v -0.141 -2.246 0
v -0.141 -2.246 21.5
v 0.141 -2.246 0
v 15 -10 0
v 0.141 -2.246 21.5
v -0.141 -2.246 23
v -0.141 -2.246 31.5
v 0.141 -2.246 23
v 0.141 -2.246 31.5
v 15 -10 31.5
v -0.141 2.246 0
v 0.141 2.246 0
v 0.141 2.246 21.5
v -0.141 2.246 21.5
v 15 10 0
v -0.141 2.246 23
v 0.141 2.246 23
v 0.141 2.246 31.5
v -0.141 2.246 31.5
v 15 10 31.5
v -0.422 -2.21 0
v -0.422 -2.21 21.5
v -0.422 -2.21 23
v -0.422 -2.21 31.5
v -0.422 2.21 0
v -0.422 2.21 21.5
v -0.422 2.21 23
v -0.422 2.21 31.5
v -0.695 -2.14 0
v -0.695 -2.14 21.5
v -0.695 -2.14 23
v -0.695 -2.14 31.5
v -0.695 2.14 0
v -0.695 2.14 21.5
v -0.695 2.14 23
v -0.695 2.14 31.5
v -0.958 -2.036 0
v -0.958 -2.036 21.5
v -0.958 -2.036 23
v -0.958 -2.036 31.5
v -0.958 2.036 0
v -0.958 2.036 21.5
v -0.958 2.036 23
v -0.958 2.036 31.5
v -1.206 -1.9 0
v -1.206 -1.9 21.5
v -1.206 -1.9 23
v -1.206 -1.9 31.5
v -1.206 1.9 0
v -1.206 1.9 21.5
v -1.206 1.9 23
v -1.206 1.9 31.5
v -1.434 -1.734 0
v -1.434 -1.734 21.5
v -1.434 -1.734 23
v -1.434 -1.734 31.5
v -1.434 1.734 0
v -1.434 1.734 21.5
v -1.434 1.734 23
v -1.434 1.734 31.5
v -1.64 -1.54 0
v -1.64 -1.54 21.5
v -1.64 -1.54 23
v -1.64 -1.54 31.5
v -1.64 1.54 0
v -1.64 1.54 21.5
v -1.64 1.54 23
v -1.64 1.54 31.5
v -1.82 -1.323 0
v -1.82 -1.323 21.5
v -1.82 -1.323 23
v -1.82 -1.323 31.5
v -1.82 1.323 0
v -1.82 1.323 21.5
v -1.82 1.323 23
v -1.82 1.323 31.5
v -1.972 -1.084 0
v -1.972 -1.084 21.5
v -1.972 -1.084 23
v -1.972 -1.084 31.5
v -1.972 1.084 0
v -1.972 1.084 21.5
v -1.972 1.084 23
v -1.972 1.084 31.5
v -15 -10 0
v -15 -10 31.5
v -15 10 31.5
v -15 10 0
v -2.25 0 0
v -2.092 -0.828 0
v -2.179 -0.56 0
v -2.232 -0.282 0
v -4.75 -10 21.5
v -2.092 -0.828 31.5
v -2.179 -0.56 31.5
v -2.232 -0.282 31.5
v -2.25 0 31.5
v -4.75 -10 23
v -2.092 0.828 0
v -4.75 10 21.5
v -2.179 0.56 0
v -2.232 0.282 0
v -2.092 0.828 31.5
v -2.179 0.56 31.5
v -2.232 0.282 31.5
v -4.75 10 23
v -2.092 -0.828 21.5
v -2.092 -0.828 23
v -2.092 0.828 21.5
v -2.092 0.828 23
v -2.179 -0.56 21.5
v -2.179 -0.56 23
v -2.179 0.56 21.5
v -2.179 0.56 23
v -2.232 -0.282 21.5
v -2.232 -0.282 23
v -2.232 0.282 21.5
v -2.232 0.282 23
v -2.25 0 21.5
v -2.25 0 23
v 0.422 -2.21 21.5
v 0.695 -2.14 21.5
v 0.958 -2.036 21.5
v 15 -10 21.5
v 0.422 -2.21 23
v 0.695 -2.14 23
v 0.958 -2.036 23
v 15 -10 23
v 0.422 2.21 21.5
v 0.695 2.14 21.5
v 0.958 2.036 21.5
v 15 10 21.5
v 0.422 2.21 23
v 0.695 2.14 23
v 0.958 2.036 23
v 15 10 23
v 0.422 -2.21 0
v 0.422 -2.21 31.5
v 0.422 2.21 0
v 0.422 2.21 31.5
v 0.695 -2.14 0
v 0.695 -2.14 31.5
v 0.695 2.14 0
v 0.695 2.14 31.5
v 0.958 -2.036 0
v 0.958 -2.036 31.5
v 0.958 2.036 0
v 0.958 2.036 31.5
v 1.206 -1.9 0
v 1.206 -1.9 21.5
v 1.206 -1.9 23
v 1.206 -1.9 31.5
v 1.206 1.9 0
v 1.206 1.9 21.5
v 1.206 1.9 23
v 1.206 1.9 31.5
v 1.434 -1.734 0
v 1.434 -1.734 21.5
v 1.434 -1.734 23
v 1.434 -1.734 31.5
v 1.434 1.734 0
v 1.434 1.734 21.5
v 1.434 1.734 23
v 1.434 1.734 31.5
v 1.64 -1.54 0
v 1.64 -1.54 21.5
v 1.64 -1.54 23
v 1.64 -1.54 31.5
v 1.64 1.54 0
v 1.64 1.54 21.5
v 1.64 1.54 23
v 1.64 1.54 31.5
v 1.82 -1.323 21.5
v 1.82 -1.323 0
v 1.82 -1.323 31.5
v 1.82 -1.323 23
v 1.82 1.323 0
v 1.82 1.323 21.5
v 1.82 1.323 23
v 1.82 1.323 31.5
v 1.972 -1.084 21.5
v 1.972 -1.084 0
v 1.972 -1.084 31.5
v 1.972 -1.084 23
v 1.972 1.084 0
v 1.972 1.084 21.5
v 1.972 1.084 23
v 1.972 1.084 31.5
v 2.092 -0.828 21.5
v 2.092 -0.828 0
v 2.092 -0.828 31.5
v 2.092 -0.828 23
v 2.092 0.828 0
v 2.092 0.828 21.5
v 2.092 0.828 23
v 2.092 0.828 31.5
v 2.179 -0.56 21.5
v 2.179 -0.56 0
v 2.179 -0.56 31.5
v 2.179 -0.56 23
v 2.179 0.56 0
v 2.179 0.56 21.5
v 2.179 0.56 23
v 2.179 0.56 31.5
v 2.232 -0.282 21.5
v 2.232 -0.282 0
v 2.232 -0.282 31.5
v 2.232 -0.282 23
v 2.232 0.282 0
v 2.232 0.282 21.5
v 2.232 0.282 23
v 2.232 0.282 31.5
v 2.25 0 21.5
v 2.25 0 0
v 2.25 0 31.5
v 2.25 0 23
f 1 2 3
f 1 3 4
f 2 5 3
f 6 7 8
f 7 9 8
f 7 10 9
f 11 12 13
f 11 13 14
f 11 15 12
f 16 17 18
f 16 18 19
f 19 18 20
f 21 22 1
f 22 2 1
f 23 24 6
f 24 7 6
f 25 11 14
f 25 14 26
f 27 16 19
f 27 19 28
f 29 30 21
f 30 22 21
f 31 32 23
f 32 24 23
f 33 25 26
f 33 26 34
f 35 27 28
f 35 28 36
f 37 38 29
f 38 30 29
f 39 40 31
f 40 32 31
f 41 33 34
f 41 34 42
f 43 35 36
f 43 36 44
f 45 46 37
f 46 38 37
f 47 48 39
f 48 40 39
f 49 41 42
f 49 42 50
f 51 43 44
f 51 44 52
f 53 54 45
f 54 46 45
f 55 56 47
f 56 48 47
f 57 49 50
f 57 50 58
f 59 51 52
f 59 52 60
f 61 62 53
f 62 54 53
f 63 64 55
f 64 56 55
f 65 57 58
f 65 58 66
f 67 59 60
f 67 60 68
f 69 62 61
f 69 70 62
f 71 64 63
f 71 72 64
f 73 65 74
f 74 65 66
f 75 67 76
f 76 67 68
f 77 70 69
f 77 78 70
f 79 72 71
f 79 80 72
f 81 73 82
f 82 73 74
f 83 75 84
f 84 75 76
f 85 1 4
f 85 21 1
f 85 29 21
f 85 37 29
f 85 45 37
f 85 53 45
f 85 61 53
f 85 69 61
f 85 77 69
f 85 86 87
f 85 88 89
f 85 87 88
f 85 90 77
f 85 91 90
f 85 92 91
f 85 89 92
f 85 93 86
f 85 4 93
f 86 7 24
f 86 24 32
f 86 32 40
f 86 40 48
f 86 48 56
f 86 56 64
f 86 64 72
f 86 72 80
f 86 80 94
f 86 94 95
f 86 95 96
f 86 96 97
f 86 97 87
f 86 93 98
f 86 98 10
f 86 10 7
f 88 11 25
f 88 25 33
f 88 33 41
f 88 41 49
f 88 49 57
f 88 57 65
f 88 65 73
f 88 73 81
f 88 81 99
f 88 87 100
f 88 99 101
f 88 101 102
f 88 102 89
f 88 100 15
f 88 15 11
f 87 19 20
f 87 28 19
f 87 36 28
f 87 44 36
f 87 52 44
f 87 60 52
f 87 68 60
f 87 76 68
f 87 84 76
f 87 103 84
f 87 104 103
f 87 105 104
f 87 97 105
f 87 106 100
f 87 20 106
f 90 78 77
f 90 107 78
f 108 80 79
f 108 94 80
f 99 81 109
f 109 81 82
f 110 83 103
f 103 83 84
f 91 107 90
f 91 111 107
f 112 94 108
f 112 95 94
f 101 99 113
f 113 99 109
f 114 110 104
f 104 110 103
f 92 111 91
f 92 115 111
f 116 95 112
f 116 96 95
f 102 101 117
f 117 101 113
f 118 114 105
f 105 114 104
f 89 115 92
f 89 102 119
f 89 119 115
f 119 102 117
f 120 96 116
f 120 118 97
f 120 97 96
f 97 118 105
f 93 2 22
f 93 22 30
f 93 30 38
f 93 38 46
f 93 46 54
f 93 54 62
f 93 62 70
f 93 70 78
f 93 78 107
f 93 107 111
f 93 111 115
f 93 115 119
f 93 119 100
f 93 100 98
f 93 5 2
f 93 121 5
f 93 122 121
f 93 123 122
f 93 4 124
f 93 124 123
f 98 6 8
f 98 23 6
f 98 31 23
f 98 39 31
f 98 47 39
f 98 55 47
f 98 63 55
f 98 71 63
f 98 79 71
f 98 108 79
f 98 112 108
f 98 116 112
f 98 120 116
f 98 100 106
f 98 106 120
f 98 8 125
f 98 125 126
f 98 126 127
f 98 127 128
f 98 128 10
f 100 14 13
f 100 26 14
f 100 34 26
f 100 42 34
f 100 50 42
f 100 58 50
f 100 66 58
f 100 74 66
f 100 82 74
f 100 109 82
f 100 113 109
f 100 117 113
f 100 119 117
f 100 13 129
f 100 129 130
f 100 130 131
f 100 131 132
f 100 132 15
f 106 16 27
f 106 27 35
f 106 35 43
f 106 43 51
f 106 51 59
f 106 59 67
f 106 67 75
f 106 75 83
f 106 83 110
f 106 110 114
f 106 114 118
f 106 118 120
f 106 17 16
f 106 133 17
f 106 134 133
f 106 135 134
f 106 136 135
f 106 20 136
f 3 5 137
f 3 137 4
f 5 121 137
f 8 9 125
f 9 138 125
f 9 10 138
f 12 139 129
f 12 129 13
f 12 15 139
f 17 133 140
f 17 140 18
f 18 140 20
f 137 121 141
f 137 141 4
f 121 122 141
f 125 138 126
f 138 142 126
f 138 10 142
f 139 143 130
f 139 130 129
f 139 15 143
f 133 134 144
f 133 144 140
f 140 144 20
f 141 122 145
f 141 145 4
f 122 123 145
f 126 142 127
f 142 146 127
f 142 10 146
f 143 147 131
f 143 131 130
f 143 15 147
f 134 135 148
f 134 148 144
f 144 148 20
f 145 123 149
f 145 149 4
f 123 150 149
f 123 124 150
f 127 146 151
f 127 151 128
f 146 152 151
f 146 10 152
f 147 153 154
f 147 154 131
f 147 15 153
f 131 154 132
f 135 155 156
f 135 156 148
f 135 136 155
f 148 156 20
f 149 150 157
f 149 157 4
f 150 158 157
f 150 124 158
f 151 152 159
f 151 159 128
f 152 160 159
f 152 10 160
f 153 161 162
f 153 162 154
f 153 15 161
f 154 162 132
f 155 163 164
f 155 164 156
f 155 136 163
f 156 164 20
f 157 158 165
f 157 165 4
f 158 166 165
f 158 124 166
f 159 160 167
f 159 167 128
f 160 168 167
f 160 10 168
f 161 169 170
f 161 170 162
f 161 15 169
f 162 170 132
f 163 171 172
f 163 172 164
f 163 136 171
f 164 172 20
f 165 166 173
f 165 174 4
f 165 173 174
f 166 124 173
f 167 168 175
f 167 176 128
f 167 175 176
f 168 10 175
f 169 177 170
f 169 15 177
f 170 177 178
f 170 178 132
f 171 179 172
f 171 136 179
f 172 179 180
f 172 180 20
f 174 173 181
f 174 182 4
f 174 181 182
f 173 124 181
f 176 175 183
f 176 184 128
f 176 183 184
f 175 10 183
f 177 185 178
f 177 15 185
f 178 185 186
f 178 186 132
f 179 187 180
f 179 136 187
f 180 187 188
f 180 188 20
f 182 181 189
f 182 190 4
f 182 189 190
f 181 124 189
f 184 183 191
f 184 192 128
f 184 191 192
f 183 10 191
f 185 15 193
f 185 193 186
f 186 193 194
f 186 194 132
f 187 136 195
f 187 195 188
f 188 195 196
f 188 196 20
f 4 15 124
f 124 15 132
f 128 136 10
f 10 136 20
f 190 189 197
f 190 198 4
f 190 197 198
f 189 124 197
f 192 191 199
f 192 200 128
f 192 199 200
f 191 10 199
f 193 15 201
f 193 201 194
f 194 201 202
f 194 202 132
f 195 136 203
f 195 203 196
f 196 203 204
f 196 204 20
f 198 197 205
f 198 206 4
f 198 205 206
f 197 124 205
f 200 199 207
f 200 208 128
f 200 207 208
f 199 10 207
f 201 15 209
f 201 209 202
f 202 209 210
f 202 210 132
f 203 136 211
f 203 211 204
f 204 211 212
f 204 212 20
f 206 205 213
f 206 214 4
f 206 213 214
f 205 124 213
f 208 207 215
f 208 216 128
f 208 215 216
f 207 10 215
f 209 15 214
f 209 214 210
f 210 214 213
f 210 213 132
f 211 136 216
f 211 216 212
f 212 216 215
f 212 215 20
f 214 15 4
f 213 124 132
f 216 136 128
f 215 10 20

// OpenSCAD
// file: ../../Parameters.scad
//Main tube diameter - hole [mm]
main_tube_outer_diameter = 25.4;
main_tube_inner_diameter = 23.5;

//Tube for undercarriage - hole [mm]
tube_for_undercarriage_outer_diameter = 10.6;
tube_for_undercarriage_inner_diameter = 6;
global_clearance = 0.5;


//umístění podvozkových trubek

second_undercarriage_hole = main_tube_outer_diameter*2 + main_tube_outer_diameter/5 + main_tube_outer_diameter/2 + 170 + 160;

// Parameters of cube couplings
coupling_wall_thickness = main_tube_outer_diameter/5;  //width of coupling walls 
thickness_between_tubes = main_tube_outer_diameter/10;    // minimum distance between tubes in couplings

coupling_wall_thickness_undercarriage = tube_for_undercarriage_outer_diameter/3;
thickness_between_tubes_undercarriage = tube_for_undercarriage_outer_diameter/10;

//Screw diameter and nut for M4 [mm]
M4_screw_diameter=4.5;
Nut_height_M4 = 3.2;
Nut_diameter_M4 = 7.86;


//Screw diameter and nut for M3 [mm]
M3_screw_diameter = 3.2;
Nut_height_M3 = 1.7;	
Nut_diameter_M3 = 6.6; 


//The tube for help
Help_main_tube_outer = 25;
Help_main_tube_inner = 23; 
Help_tube_for_undercarriage_outer = 10;
Help_tube_for_undercarriage_inner = 5;


//main hull parameters

hull_drop_length = 580;
hull_wall_thickness = 0.8;
hull_y_size = 120;
hull_z_size = 150;
hull_x_size = 580;
hull_corner_radius = 4;
hull_airfoil_thickness= 35;  // thickness of drop generating airfoil in percent of lenght.
hull_scale_x = 1;
hull_scale_y = 1.5;
hull_scale_z = 1.5;

main_pilon_position = 170+68;
cover_pilon_position = 180;
height_of_vertical_tube = 275; //278mm je změřená délka trubky. 

ribbon_width = 5; // šířka vyztužovacích lemů. 

// šířka otvoru v přední části kapoty pro držák motoru.
width_of_engine_holder = 63;

//Top Cover Division - dělení horního krytu pro tisk
top_cover_division = [0, 50, 150, 280, 410, hull_x_size]; // upraveny seznam tak, aby deleni začinalo od nuly, což umožňí úplně automatické rozdělení.

//Bottom Cover Division - dělení dolního krytu pro tisk
bottom_cover_division = [0,100,250,365, 470, hull_x_size];
// zkrácená část pro payload pro testovací tisk
//bottom_cover_division = [0,200,250,365, 470, hull_x_size];

//Base Divison - dělení podložky
base_division = [0,140,280,410, hull_x_size];

//Cover pilon division - na výšku (v ose Z)
cover_pilon_division = [0,170,height_of_vertical_tube + main_tube_outer_diameter + coupling_wall_thickness];

//pozice šroubů
	//horní kryt
top_screw_position = [0, (top_cover_division[0] + top_cover_division[1])/4, (top_cover_division[2] - top_cover_division[1])/2 + top_cover_division[1], (top_cover_division[3] - top_cover_division[2])/2 + top_cover_division[2],(top_cover_division[4] - top_cover_division[3])/2 + top_cover_division[3],(top_cover_division[5] - top_cover_division[4])/2 + top_cover_division[4] - 20];
	//spodní kryt
bottom_screw_position = [0,(bottom_cover_division[0] + bottom_cover_division[1])/15 + 5, bottom_cover_division[1]/1.1, + bottom_cover_division[3], bottom_cover_division[3] + bottom_cover_division[1]/2, bottom_cover_division[4] - 6*global_clearance, bottom_cover_division[4] + bottom_cover_division[1]/2.5];




//šířka zámků
lock_width = 10;

//délka zámků
lock_length = 3;


//accumulator
//základní rozměry akumulátoru
width_of_accumulator = 129.4;//45+1;
depth_of_accumulator = 40.61;
height_of_accumulator = 43.65;
//Zapuštění akumulátoru
sink_of_accumulator = 5; //main_tube_outer_diameter/5 - Nut_height_M3*1.5;

//tloušťka hrany spojky
accumulator_holder_width = 18; 
accumulator_holder_thickness = 10; 

//posunutí akumálátoru na podložce
move_of_accumulator = 165;   // pozice akumulátoru (ovlivňuje těžiště)


////////////////
// Senzory
///////////////////

//opticalFlow
    width_optical_flow_senzor = 45.5;
    depth_optical_flow_senzor = 6;
    height_optical_flow_senzor = 35;
    sink_of_optical_flow_senzor = depth_optical_flow_senzor - 5; 
    M3_optical_flow_senzor_Z = 30.4;
    M3_optical_flow_senzor_X = 24;
    M3_optical_flow_senzor_Z_alone = 9.1;
    M3_optical_flow_senzor_X_alone = 16.7;
// main file
draft = true;

module screw_cutter(draft){

width = 30;
depth = 20;

//délka šroubu, kterou potřebujeme
height_need_screw = 21.5;

//délka navíc pro upevnění šroubu
tolerance = 10;

//průměr řezaného šroubu
diamter_of_cut_screw = M4_screw_diameter;

    difference(){

    	translate([-width/2, -depth/2,0])
    		cube([width,depth,height_need_screw + tolerance]);

    	//šroub
    	translate([0,0,-global_clearance/2])
    		cylinder(h = height_need_screw + tolerance + global_clearance, r = diamter_of_cut_screw/2, $fn = draft ? 50 : 100 );

    	//prořez
    	translate([- global_clearance/2 - diamter_of_cut_screw, - depth/2 - global_clearance/2,height_need_screw])
    		cube([width + global_clearance, depth + global_clearance, 1.5]);

	}	

}


screw_cutter(draft);



include <../../Parameters.scad>
